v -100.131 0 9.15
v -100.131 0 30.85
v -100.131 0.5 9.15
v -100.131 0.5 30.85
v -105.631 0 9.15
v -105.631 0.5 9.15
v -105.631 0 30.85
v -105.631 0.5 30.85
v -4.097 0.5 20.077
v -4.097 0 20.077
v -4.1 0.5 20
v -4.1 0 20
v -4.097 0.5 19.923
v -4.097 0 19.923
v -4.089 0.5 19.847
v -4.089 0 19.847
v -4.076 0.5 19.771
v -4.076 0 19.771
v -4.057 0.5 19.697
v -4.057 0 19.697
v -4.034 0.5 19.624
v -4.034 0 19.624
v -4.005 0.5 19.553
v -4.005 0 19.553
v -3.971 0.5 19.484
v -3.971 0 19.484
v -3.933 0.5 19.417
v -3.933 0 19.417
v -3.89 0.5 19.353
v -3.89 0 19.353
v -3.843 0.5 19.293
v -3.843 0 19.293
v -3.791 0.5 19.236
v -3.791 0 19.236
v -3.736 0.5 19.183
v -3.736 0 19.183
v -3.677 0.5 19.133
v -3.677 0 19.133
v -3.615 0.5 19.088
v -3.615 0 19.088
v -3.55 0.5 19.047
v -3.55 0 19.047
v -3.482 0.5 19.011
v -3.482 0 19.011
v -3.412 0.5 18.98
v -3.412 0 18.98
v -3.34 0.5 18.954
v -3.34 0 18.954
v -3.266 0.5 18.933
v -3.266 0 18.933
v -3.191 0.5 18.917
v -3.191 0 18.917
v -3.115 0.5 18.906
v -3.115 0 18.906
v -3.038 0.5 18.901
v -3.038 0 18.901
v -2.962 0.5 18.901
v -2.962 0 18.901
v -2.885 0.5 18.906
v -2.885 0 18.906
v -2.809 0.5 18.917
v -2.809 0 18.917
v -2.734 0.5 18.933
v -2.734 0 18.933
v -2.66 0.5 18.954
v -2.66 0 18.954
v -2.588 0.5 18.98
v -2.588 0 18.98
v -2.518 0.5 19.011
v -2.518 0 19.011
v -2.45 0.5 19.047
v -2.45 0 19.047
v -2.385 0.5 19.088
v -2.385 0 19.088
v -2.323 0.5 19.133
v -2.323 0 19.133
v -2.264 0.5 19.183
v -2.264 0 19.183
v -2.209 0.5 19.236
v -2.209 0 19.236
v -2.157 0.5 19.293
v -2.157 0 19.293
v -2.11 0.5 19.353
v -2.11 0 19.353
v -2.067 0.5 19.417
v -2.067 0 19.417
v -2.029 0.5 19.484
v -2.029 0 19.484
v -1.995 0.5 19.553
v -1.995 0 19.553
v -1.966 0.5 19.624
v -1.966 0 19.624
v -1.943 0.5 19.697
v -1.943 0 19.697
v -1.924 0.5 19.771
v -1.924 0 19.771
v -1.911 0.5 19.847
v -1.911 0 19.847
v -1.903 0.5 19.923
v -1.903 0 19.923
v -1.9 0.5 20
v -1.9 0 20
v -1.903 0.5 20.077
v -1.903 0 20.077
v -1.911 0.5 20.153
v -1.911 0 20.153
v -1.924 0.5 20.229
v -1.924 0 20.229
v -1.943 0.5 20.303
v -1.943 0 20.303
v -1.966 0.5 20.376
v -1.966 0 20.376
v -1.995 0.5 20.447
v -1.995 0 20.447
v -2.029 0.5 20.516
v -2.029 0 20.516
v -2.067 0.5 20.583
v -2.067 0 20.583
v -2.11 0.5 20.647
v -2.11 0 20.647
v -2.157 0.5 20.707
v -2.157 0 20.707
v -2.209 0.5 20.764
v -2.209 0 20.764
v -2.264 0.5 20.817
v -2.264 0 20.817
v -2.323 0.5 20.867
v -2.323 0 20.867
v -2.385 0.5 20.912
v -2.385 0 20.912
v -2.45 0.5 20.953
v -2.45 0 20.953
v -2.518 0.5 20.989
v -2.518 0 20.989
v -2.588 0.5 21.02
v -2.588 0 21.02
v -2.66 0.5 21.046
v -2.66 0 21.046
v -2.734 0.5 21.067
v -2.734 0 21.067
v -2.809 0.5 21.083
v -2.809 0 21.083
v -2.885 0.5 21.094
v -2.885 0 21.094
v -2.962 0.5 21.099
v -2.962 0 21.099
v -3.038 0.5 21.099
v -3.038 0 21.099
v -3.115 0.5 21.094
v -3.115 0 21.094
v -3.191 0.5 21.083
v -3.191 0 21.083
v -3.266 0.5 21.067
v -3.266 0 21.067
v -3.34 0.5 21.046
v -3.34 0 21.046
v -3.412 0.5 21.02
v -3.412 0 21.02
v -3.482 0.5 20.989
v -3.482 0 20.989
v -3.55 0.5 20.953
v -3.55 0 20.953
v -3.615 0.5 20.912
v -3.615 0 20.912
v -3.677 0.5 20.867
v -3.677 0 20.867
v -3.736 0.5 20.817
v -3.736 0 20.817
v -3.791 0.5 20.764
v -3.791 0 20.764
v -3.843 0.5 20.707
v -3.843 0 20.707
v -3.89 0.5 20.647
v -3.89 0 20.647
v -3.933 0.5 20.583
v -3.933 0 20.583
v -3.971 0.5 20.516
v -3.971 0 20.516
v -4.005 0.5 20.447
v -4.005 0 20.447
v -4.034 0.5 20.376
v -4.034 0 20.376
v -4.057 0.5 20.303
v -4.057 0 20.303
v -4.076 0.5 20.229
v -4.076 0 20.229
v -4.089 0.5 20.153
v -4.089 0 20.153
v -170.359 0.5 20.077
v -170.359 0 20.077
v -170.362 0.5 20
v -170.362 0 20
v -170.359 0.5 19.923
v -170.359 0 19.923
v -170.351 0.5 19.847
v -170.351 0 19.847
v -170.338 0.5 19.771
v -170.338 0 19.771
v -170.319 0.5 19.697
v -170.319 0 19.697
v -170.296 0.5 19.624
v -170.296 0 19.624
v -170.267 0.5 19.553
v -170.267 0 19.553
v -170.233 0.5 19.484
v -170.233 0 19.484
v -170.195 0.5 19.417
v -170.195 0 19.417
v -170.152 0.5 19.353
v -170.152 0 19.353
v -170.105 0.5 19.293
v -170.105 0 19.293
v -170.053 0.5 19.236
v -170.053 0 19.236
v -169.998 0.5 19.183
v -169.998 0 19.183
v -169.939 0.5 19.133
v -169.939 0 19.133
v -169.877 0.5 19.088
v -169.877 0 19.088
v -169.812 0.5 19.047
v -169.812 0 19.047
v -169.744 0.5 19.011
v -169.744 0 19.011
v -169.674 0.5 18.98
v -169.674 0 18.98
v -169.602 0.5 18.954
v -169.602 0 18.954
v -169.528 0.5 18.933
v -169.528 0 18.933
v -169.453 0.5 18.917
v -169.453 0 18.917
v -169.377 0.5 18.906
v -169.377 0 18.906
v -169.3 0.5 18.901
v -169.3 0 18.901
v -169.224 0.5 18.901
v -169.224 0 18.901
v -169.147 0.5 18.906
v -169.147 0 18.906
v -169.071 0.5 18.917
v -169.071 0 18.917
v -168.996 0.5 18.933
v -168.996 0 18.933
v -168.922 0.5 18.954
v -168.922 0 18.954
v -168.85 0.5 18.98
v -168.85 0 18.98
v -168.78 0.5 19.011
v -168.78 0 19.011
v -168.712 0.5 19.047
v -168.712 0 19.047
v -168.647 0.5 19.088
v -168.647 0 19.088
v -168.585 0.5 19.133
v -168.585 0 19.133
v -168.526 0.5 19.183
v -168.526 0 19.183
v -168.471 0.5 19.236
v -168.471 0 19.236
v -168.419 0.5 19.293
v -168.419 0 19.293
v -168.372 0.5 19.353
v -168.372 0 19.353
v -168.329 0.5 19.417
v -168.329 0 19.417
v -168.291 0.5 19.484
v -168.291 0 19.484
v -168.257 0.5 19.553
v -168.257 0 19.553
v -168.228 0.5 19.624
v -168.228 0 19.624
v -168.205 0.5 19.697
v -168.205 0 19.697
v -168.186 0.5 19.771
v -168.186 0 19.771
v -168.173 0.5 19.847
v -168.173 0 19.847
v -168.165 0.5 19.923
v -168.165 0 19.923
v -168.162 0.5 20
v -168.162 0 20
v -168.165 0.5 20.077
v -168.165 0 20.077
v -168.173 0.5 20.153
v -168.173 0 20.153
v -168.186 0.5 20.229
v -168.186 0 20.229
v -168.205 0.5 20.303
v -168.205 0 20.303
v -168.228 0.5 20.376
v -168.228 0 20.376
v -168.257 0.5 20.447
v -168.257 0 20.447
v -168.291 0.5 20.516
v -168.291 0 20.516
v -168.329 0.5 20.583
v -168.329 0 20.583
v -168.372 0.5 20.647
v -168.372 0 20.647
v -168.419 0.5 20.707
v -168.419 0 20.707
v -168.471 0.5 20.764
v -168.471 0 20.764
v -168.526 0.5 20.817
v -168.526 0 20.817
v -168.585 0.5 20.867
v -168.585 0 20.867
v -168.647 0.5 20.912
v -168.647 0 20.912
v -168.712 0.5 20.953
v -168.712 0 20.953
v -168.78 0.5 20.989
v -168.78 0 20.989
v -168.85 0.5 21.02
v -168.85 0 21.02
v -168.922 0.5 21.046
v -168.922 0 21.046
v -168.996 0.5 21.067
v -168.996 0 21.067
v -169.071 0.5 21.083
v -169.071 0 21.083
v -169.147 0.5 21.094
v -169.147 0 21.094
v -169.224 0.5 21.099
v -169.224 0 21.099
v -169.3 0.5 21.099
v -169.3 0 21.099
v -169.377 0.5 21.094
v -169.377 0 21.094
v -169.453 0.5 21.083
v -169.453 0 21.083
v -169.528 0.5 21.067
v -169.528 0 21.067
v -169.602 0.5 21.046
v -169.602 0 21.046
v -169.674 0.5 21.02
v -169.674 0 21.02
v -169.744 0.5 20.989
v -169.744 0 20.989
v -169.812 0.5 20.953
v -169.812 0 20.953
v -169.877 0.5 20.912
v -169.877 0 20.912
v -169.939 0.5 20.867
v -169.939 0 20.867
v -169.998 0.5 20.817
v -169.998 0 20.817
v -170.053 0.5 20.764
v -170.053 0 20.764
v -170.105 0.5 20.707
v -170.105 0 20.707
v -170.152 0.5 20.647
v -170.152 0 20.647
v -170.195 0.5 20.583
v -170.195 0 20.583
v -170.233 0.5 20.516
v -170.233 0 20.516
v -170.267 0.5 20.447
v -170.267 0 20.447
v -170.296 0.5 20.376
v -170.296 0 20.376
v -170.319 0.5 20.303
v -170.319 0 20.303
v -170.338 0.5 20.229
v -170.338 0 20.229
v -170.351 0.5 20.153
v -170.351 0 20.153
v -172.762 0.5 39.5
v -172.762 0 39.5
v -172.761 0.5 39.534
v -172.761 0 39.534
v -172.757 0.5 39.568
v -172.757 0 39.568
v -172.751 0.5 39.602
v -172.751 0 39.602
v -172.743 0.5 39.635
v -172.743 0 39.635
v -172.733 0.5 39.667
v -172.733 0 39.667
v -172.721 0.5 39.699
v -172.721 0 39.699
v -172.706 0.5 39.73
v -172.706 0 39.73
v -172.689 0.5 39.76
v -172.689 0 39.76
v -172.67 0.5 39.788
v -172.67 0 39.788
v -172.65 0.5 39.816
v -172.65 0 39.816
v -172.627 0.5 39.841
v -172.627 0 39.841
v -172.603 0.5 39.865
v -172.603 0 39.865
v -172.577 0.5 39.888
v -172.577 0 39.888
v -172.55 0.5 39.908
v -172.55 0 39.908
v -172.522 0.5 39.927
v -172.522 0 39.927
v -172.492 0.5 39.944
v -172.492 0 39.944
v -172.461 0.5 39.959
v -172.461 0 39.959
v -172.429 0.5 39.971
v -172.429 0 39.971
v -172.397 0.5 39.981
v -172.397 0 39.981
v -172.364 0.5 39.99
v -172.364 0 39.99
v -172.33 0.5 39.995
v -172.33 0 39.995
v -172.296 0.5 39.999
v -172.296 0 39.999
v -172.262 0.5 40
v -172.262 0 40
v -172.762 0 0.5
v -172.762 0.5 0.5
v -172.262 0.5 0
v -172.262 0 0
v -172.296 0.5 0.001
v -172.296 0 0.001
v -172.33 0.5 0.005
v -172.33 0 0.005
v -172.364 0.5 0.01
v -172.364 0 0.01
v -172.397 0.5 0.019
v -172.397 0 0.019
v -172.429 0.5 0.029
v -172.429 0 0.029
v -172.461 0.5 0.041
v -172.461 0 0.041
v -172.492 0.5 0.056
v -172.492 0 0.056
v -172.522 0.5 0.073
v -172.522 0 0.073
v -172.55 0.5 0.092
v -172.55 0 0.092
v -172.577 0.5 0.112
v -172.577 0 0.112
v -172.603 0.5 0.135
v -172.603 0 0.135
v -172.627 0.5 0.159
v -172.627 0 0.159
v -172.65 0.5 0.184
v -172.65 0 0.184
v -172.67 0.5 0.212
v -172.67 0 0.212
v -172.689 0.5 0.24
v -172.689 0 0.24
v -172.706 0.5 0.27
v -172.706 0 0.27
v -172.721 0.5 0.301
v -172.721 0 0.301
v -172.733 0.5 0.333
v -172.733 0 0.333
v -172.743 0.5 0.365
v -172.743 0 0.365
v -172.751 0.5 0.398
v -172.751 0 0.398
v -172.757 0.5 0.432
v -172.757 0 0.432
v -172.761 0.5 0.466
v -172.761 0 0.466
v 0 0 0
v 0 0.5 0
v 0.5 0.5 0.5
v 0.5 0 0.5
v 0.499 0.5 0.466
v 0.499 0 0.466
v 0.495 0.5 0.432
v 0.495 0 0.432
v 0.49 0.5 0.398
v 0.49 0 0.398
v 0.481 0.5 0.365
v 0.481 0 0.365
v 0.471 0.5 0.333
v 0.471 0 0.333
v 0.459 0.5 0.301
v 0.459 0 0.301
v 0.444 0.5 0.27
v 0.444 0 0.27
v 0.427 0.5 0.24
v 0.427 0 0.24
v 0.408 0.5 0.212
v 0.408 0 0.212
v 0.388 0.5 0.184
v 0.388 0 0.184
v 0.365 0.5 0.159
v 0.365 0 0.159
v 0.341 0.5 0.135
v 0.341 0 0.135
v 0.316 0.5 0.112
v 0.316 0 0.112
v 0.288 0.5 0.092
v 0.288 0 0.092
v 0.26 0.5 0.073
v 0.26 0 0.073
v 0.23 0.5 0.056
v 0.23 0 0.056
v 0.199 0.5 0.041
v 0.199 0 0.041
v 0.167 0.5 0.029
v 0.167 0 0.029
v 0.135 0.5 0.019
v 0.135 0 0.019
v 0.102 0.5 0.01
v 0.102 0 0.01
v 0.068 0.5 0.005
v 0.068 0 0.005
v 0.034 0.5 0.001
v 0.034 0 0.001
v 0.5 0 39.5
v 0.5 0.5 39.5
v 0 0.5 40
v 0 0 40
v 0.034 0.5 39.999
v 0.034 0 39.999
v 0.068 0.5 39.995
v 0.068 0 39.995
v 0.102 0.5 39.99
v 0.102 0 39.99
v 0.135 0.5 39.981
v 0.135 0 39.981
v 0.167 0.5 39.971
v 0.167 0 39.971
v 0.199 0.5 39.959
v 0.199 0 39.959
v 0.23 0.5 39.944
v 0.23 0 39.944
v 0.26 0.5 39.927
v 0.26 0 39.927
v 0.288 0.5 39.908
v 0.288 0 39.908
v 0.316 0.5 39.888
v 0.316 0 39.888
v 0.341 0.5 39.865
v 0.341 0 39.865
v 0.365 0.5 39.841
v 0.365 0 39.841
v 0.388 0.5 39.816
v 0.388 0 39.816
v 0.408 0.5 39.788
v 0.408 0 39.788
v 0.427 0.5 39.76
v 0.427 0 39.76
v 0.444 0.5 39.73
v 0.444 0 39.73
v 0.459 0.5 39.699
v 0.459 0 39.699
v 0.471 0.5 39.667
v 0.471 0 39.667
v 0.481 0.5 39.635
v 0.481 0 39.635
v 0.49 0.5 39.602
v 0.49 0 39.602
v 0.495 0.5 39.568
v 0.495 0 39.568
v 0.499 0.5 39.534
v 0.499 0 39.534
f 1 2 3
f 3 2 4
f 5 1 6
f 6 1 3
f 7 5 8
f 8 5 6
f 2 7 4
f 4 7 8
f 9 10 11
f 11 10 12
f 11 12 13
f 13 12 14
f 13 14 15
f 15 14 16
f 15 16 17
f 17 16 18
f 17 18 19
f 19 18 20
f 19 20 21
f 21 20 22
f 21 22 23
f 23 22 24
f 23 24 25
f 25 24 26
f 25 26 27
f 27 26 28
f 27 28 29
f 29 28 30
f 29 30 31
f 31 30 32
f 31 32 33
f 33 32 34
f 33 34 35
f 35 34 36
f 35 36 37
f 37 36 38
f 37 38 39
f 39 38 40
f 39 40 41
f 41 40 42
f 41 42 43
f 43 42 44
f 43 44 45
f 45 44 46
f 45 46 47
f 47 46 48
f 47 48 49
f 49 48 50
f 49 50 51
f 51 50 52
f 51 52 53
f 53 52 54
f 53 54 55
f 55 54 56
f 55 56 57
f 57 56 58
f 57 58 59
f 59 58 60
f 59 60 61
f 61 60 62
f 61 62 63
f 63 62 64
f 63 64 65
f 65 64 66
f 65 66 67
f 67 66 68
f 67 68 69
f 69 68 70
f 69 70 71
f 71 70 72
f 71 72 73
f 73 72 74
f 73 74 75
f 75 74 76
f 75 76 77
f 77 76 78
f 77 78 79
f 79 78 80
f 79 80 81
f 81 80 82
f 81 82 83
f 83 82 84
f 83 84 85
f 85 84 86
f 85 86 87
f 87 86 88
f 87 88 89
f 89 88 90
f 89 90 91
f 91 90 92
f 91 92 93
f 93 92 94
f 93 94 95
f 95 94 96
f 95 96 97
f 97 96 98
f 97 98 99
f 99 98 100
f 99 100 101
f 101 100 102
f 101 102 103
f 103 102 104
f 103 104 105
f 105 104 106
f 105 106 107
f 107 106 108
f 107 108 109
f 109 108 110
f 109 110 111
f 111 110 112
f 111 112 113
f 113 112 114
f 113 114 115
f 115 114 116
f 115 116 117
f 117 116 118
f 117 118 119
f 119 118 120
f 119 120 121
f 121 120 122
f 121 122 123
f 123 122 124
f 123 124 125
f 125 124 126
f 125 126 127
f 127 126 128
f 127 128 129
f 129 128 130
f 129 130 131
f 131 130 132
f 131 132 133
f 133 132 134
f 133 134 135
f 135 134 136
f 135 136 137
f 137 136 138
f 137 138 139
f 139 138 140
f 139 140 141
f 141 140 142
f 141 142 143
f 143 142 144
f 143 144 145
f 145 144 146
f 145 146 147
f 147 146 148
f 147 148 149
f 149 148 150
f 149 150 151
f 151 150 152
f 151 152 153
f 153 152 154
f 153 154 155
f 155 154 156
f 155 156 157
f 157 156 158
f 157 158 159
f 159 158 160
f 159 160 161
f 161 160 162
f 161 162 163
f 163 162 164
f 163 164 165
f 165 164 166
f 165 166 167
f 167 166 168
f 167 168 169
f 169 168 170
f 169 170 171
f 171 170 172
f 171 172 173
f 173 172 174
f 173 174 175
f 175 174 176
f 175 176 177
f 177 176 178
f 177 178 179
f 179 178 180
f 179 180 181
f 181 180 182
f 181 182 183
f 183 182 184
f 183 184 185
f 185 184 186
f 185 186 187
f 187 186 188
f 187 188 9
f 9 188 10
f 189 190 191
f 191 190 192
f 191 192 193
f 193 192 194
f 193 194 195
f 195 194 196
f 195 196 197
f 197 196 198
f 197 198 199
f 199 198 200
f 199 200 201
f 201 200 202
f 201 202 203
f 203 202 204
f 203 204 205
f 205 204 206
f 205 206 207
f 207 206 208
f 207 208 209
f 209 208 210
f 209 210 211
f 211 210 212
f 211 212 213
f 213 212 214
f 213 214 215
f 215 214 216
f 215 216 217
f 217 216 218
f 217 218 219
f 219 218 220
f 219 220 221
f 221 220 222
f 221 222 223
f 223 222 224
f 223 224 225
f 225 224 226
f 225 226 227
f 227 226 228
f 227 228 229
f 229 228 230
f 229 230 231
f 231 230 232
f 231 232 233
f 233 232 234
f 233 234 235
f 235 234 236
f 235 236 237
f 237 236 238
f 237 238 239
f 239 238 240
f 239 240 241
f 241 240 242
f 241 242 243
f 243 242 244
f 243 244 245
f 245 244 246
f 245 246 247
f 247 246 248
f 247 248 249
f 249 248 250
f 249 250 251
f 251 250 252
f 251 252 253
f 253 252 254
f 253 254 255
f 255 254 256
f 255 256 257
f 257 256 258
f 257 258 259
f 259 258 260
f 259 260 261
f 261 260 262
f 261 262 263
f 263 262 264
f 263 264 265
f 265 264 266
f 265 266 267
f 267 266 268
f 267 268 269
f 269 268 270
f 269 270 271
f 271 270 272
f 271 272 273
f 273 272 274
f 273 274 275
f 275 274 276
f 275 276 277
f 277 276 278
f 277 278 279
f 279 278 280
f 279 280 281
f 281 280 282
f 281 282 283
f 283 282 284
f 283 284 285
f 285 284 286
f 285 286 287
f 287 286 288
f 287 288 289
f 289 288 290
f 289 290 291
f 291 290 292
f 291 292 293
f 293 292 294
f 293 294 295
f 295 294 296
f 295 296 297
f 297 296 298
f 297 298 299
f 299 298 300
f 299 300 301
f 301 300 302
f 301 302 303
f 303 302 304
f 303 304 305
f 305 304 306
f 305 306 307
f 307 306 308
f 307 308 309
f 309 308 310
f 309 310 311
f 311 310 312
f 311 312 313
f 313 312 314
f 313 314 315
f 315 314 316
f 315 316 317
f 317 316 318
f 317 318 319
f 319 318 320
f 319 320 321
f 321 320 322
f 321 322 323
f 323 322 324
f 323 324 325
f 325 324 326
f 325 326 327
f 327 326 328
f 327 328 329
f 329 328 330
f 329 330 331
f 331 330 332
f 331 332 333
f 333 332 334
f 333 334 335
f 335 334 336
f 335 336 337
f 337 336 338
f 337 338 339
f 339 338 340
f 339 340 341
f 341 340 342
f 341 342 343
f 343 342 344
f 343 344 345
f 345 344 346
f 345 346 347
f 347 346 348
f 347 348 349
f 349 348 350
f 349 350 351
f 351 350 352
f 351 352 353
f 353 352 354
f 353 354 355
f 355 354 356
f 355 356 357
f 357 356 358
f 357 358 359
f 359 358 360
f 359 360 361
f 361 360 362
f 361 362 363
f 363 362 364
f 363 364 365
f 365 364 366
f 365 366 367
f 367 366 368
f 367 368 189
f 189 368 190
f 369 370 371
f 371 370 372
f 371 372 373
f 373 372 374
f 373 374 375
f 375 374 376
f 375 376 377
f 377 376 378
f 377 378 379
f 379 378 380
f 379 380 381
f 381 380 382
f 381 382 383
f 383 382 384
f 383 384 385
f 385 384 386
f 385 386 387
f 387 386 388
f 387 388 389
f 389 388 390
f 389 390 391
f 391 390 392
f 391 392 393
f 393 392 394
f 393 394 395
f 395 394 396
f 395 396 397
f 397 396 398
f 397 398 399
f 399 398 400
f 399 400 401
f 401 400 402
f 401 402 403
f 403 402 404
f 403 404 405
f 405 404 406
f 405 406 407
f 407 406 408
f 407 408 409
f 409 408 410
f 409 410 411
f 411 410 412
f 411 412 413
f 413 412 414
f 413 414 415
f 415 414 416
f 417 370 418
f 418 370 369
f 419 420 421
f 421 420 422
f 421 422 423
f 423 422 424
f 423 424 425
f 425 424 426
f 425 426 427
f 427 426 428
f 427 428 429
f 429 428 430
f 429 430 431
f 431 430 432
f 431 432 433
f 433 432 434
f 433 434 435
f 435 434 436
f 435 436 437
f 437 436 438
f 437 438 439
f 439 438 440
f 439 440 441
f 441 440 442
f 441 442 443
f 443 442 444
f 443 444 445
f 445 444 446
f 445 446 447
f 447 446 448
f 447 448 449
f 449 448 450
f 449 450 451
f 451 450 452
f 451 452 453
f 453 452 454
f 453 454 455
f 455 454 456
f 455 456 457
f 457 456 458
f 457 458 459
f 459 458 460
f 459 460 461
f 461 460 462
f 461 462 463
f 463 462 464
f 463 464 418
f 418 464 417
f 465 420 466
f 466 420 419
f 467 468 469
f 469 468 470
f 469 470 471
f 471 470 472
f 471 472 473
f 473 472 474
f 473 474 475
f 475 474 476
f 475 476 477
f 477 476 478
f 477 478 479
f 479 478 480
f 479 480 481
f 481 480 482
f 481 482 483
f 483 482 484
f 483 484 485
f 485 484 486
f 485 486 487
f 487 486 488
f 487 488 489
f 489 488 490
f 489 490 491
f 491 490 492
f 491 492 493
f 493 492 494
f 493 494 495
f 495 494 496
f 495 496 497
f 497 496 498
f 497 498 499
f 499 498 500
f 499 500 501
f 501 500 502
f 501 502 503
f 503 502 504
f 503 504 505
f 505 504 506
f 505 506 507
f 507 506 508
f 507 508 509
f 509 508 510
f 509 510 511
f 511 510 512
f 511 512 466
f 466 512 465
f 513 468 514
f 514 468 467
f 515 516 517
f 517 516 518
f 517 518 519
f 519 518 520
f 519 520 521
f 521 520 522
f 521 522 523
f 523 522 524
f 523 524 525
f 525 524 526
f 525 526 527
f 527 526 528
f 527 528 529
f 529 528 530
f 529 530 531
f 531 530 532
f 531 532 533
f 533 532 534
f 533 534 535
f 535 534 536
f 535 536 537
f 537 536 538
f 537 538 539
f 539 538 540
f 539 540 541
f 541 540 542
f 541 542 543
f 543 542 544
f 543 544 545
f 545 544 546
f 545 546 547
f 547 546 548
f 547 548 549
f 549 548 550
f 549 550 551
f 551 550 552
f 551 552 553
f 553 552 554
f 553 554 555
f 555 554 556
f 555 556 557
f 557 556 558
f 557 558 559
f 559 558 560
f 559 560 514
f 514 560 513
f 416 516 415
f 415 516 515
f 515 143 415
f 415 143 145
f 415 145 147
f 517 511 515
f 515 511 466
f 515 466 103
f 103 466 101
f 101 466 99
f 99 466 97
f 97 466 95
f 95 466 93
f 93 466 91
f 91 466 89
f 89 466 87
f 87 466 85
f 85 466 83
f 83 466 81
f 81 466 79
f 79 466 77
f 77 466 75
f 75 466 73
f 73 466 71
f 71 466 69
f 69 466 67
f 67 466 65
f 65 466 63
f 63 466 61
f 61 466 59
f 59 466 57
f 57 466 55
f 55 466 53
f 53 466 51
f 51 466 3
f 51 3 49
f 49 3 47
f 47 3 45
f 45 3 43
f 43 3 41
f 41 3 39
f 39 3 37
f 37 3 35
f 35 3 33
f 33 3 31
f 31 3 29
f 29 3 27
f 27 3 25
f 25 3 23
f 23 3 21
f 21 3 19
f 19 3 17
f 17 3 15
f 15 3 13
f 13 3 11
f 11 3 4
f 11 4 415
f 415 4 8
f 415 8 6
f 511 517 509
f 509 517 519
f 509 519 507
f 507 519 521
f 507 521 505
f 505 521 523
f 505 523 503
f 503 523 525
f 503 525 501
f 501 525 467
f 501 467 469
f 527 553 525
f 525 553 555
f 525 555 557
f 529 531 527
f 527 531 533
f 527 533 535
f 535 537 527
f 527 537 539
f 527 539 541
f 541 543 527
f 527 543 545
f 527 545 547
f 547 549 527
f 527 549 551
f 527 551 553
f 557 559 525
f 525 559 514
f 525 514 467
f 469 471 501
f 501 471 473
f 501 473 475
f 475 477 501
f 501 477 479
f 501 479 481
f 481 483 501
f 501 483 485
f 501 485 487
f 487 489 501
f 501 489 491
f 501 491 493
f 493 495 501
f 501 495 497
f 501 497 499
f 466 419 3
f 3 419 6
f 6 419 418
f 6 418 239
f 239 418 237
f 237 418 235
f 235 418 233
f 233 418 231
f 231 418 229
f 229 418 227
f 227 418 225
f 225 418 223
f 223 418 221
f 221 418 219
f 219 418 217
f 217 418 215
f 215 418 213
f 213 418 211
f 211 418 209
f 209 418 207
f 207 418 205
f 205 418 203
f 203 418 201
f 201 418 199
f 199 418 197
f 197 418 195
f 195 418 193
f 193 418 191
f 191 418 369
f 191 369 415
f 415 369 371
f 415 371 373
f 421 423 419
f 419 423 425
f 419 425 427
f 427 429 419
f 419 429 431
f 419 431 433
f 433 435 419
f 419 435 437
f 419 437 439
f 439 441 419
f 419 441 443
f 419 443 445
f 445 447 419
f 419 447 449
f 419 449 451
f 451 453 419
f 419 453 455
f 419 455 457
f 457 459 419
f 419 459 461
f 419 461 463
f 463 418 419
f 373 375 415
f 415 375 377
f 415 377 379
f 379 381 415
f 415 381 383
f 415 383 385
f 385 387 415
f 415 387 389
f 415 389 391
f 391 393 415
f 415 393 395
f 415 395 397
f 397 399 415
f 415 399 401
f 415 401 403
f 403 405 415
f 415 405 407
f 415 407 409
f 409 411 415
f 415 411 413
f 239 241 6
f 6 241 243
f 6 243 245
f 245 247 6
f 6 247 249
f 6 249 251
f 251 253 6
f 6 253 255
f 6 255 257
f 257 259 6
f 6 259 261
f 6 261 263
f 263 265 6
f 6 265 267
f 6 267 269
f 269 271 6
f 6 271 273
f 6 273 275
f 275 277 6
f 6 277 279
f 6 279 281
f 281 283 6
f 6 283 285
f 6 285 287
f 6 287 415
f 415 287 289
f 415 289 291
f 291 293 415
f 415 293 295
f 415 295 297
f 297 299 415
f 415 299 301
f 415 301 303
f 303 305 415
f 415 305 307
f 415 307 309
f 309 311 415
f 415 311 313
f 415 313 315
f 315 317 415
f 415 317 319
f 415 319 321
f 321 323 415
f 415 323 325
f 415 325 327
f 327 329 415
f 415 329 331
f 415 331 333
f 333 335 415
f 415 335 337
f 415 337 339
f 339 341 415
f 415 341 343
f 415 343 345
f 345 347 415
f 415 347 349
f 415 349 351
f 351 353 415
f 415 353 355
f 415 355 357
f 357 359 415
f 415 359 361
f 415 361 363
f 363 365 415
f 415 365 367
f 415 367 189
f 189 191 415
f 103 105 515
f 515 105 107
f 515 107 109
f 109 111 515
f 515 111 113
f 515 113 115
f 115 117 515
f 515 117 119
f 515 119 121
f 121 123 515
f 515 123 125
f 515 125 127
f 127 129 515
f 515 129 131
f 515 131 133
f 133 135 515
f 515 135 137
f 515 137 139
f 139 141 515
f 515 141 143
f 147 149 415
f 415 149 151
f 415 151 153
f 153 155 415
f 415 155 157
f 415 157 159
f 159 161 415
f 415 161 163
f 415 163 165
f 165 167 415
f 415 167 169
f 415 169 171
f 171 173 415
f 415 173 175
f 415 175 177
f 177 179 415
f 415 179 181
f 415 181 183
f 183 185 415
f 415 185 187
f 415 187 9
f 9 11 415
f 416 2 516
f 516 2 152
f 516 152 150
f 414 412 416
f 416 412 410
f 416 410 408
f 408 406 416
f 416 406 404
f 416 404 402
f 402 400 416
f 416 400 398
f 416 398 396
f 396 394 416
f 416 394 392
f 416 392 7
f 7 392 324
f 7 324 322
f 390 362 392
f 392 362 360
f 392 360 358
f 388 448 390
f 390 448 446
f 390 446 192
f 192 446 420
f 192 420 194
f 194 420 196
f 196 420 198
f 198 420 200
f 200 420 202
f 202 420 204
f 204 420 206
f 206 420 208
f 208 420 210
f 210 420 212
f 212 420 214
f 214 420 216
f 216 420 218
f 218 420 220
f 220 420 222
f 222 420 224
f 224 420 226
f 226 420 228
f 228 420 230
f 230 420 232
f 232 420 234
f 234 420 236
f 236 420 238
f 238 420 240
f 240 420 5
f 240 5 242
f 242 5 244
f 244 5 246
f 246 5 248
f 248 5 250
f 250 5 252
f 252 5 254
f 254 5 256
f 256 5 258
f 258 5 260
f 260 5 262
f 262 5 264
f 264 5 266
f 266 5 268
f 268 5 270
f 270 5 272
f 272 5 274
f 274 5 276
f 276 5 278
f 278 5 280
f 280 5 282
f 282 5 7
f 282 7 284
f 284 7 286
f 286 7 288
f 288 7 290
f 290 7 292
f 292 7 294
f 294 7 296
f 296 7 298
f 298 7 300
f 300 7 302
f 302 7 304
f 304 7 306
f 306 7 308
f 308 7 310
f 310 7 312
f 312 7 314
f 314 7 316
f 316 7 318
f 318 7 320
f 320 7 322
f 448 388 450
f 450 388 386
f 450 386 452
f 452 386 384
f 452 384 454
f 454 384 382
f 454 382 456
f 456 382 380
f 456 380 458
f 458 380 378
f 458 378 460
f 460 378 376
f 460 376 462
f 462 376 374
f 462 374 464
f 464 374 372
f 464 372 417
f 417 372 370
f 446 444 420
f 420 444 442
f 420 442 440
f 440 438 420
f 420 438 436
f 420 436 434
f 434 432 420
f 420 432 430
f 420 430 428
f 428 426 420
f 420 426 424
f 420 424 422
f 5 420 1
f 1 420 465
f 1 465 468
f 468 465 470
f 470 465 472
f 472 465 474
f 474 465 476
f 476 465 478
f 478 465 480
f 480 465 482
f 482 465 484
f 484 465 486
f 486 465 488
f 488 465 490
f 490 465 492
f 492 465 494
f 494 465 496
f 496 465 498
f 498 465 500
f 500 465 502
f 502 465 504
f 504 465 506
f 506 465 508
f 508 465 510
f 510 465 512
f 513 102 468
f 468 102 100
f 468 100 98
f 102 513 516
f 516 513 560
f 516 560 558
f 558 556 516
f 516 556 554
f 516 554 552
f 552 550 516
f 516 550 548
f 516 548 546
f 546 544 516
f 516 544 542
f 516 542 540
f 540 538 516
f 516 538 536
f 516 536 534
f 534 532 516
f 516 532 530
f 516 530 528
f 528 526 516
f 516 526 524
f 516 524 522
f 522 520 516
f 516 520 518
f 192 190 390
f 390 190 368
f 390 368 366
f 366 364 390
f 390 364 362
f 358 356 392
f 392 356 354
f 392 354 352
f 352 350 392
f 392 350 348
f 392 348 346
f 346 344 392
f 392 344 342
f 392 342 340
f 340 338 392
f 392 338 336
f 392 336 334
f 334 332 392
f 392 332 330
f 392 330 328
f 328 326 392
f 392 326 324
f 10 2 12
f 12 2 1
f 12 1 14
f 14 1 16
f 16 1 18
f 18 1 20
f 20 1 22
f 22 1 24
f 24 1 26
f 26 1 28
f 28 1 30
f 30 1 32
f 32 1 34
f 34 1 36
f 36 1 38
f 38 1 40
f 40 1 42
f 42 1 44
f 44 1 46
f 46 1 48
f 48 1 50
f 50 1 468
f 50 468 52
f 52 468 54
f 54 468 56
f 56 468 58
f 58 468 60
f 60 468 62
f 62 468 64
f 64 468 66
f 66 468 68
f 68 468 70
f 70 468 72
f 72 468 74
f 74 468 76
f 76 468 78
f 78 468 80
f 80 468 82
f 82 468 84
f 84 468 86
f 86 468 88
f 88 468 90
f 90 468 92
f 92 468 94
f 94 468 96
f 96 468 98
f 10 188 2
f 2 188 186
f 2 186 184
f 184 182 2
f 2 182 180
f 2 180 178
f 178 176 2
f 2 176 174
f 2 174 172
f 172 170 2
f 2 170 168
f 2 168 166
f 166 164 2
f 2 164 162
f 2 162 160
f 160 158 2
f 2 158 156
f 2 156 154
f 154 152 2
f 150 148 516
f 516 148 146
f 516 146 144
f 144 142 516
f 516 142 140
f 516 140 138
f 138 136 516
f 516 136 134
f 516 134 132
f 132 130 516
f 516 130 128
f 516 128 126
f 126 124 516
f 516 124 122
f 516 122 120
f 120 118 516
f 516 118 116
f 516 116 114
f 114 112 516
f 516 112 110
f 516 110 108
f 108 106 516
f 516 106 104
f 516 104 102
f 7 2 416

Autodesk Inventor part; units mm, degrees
ref_plane "YZ Plane" through (0, 0, 0) normal (1, 0, 0) x (0, 1, 0)
ref_plane "XZ Plane" through (0, 0, 0) normal (0, 1, 0) x (-1, 0, 0)
ref_plane "XY Plane" through (0, 0, 0) normal (0, 0, 1) x (1, 0, 0)
sketch "Эскиз1" plane through (0, 0, 0) normal (0, 1, 0) x (-1, 0, 0)
  circle A0 centre (169.2619, 20) radius 1.1
  line L0 (100.131, 30.85) -> (105.631, 30.85)
  line L1 (105.631, 30.85) -> (105.631, 9.15)
  line L2 (105.631, 9.15) -> (100.131, 9.15)
  line L3 (100.131, 9.15) -> (100.131, 30.85)
  arc A1 (0, 40) -> (-0.5, 39.5) centre (0, 39.5) ccw
  line L4 (-0.5, 0.5) -> (-0.5, 39.5)
  arc A2 (-0.5, 0.5) -> (0, 0) centre (0, 0.5) ccw
  line L5 (172.2619, 0) -> (0, 0)
  arc A3 (172.2619, 0) -> (172.7619, 0.5) centre (172.2619, 0.5) ccw
  line L6 (172.7619, 39.5) -> (172.7619, 0.5)
  arc A4 (172.7619, 39.5) -> (172.2619, 40) centre (172.2619, 39.5) ccw
  line L7 (0, 40) -> (172.2619, 40)
  circle A5 centre (3, 20) radius 1.1
extrude "Выдавливание1" add sketch "Эскиз1" along normal blind 0.5
properties part number "metal_cap_forPrint"
